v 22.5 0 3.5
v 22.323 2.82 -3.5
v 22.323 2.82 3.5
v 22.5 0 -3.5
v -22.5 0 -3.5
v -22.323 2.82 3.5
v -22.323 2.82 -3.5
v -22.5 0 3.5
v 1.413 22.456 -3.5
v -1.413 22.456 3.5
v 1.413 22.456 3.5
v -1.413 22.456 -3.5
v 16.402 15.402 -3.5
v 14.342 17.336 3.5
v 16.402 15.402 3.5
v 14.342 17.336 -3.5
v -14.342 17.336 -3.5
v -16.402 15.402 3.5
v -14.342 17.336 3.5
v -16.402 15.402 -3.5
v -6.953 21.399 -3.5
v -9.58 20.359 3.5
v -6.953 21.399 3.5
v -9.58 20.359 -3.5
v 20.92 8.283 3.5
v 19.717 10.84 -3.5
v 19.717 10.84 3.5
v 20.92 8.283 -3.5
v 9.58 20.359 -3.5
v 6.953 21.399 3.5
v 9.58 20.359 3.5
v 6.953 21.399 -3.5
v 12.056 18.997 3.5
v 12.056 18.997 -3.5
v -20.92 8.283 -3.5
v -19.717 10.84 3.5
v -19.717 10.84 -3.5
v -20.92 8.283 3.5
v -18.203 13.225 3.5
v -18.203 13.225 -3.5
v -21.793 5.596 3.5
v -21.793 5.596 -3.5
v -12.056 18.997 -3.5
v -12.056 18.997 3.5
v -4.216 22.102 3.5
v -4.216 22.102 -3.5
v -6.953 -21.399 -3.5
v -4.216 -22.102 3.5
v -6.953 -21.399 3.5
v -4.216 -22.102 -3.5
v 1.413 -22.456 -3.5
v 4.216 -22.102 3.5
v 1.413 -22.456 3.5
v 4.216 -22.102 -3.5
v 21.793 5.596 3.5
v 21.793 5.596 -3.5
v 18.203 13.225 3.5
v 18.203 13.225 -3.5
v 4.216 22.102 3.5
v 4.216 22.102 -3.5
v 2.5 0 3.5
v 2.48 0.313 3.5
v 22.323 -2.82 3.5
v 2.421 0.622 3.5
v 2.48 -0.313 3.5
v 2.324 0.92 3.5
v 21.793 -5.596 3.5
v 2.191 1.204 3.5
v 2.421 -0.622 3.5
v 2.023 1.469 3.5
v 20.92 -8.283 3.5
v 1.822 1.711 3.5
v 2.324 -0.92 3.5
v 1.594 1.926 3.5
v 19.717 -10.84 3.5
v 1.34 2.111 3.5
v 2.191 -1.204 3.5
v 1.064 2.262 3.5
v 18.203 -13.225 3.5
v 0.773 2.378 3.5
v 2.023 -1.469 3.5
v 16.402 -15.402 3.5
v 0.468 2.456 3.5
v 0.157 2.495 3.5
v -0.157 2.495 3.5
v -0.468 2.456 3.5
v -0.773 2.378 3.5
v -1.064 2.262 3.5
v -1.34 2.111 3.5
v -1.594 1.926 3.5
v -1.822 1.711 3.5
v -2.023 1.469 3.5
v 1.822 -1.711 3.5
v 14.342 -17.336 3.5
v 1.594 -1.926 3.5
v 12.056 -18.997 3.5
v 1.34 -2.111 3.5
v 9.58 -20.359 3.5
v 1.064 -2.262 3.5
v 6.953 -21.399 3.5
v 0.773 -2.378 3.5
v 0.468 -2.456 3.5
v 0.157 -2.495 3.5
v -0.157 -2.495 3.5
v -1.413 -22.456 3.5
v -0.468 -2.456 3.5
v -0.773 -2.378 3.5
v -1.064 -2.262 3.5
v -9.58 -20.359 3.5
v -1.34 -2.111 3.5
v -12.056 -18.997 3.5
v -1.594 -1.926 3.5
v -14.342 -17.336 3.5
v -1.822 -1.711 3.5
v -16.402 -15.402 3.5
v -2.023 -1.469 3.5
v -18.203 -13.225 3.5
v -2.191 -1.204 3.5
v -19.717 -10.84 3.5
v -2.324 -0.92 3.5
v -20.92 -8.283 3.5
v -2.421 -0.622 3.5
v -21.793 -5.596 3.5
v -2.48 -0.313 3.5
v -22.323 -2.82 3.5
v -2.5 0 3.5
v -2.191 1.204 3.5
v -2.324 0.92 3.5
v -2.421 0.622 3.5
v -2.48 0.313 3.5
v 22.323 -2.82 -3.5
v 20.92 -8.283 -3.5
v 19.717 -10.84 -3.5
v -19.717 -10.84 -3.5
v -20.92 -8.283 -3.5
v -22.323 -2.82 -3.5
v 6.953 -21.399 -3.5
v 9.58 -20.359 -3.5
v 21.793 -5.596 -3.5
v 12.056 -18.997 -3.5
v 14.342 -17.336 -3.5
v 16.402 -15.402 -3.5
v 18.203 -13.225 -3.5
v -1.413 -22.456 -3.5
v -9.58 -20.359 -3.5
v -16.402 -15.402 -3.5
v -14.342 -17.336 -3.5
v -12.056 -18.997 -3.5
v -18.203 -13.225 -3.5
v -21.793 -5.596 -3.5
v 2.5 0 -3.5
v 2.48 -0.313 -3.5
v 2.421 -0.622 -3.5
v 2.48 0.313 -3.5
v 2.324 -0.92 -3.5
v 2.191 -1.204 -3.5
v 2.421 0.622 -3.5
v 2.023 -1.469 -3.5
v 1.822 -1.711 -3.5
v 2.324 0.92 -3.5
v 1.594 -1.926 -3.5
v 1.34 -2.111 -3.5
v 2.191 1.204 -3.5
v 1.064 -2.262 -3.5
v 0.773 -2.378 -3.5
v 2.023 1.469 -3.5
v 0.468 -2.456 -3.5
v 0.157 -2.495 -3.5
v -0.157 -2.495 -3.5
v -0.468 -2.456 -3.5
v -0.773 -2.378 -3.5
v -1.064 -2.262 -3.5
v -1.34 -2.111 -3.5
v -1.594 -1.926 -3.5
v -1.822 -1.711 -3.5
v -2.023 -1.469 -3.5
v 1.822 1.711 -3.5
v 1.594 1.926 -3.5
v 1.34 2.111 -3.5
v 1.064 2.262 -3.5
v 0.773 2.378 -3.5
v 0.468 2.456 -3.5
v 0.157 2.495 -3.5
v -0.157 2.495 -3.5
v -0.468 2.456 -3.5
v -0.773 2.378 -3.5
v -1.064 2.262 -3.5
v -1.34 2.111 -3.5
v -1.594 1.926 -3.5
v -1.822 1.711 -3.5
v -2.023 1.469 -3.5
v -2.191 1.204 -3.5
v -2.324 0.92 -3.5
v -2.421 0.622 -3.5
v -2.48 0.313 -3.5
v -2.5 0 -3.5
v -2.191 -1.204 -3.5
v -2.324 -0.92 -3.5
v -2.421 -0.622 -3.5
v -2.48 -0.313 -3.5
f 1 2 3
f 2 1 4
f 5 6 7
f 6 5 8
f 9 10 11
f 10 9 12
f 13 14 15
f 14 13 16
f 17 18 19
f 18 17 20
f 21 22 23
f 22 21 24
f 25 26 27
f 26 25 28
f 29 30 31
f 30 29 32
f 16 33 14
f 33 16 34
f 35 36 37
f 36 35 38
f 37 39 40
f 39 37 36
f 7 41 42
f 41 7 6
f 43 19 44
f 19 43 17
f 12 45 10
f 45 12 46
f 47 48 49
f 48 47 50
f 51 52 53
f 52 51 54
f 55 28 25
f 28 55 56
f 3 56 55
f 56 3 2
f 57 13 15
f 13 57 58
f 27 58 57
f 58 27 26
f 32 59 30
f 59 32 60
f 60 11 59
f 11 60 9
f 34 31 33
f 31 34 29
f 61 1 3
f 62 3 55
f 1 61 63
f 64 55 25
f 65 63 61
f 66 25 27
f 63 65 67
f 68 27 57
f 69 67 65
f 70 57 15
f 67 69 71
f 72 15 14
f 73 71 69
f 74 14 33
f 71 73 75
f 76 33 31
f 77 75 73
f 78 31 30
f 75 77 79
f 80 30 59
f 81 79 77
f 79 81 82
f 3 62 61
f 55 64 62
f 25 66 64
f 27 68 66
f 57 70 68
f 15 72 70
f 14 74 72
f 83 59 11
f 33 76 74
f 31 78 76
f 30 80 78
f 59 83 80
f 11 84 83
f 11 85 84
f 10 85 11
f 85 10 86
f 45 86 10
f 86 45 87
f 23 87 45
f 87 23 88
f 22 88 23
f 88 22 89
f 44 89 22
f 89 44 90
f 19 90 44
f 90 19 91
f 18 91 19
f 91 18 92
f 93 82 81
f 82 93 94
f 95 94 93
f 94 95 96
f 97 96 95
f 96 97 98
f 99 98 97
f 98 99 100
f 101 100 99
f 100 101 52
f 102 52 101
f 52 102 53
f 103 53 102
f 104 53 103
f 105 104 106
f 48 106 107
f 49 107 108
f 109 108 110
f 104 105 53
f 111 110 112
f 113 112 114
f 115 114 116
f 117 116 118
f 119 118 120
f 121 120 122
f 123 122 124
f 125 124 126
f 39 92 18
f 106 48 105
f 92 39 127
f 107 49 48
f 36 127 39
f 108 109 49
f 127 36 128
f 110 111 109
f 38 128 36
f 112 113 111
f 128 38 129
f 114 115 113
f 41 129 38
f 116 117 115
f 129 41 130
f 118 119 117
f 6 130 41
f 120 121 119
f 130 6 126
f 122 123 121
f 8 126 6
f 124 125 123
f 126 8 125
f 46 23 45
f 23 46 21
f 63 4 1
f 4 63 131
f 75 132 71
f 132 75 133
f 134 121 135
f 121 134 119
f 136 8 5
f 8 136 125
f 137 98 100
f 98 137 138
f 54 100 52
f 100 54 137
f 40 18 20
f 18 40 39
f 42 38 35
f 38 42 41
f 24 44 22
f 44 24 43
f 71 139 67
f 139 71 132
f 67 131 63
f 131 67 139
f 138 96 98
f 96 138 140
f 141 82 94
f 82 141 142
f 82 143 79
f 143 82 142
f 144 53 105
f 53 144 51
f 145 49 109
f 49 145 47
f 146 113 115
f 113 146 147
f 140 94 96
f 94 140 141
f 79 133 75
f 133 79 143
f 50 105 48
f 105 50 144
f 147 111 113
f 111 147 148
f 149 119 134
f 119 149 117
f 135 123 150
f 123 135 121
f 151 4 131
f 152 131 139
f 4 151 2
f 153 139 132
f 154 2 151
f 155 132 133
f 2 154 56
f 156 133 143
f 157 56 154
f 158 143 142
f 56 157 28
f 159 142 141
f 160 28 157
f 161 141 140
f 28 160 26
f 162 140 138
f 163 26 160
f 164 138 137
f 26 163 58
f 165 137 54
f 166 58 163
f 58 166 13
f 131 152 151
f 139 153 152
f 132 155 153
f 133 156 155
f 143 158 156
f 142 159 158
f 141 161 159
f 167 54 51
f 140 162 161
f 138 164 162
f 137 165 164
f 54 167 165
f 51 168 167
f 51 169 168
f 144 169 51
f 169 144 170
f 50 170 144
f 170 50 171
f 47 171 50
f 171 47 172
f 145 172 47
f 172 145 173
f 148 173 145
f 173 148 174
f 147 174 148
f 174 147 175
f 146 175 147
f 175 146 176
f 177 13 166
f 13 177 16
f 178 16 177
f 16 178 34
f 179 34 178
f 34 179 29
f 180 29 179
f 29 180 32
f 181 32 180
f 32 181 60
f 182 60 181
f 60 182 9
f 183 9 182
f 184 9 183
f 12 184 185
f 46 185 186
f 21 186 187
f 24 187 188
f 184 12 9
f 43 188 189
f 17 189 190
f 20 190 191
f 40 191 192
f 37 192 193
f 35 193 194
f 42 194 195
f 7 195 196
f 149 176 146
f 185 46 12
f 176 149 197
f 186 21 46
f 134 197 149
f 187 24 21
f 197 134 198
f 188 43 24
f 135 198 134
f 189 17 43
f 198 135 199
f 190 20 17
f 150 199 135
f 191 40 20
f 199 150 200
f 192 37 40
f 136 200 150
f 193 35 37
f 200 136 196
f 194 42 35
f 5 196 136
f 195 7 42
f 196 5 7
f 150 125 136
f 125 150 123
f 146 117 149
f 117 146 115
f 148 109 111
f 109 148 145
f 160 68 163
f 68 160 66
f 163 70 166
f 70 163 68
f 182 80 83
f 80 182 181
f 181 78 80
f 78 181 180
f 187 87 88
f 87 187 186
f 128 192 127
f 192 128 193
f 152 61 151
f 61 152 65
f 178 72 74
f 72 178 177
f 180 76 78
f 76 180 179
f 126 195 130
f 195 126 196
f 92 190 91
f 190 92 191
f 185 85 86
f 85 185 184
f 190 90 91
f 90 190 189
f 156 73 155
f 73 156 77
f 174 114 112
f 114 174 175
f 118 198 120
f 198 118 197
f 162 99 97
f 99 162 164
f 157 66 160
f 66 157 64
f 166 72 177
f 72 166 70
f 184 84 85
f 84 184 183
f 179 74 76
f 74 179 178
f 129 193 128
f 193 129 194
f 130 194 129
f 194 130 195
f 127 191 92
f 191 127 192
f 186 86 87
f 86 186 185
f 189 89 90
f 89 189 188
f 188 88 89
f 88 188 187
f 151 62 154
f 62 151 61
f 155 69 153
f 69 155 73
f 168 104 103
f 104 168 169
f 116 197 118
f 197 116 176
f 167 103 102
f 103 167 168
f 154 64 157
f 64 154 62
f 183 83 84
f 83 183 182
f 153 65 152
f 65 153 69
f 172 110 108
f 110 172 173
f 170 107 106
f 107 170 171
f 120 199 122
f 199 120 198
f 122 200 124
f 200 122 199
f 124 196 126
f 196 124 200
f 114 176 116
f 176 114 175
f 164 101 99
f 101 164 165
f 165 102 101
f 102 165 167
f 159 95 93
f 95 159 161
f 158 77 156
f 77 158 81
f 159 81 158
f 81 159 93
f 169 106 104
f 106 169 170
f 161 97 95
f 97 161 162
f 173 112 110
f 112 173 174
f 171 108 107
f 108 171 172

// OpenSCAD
$fn = 50;


difference() {
	union() {
		translate(v = [0, 0, -3.5000000000]) {
			cylinder(h = 7, r = 22.5000000000);
		}
	}
	union() {
		translate(v = [0, 0, -100.0000000000]) {
			cylinder(h = 200, r = 2.5000000000);
		}
	}
}
